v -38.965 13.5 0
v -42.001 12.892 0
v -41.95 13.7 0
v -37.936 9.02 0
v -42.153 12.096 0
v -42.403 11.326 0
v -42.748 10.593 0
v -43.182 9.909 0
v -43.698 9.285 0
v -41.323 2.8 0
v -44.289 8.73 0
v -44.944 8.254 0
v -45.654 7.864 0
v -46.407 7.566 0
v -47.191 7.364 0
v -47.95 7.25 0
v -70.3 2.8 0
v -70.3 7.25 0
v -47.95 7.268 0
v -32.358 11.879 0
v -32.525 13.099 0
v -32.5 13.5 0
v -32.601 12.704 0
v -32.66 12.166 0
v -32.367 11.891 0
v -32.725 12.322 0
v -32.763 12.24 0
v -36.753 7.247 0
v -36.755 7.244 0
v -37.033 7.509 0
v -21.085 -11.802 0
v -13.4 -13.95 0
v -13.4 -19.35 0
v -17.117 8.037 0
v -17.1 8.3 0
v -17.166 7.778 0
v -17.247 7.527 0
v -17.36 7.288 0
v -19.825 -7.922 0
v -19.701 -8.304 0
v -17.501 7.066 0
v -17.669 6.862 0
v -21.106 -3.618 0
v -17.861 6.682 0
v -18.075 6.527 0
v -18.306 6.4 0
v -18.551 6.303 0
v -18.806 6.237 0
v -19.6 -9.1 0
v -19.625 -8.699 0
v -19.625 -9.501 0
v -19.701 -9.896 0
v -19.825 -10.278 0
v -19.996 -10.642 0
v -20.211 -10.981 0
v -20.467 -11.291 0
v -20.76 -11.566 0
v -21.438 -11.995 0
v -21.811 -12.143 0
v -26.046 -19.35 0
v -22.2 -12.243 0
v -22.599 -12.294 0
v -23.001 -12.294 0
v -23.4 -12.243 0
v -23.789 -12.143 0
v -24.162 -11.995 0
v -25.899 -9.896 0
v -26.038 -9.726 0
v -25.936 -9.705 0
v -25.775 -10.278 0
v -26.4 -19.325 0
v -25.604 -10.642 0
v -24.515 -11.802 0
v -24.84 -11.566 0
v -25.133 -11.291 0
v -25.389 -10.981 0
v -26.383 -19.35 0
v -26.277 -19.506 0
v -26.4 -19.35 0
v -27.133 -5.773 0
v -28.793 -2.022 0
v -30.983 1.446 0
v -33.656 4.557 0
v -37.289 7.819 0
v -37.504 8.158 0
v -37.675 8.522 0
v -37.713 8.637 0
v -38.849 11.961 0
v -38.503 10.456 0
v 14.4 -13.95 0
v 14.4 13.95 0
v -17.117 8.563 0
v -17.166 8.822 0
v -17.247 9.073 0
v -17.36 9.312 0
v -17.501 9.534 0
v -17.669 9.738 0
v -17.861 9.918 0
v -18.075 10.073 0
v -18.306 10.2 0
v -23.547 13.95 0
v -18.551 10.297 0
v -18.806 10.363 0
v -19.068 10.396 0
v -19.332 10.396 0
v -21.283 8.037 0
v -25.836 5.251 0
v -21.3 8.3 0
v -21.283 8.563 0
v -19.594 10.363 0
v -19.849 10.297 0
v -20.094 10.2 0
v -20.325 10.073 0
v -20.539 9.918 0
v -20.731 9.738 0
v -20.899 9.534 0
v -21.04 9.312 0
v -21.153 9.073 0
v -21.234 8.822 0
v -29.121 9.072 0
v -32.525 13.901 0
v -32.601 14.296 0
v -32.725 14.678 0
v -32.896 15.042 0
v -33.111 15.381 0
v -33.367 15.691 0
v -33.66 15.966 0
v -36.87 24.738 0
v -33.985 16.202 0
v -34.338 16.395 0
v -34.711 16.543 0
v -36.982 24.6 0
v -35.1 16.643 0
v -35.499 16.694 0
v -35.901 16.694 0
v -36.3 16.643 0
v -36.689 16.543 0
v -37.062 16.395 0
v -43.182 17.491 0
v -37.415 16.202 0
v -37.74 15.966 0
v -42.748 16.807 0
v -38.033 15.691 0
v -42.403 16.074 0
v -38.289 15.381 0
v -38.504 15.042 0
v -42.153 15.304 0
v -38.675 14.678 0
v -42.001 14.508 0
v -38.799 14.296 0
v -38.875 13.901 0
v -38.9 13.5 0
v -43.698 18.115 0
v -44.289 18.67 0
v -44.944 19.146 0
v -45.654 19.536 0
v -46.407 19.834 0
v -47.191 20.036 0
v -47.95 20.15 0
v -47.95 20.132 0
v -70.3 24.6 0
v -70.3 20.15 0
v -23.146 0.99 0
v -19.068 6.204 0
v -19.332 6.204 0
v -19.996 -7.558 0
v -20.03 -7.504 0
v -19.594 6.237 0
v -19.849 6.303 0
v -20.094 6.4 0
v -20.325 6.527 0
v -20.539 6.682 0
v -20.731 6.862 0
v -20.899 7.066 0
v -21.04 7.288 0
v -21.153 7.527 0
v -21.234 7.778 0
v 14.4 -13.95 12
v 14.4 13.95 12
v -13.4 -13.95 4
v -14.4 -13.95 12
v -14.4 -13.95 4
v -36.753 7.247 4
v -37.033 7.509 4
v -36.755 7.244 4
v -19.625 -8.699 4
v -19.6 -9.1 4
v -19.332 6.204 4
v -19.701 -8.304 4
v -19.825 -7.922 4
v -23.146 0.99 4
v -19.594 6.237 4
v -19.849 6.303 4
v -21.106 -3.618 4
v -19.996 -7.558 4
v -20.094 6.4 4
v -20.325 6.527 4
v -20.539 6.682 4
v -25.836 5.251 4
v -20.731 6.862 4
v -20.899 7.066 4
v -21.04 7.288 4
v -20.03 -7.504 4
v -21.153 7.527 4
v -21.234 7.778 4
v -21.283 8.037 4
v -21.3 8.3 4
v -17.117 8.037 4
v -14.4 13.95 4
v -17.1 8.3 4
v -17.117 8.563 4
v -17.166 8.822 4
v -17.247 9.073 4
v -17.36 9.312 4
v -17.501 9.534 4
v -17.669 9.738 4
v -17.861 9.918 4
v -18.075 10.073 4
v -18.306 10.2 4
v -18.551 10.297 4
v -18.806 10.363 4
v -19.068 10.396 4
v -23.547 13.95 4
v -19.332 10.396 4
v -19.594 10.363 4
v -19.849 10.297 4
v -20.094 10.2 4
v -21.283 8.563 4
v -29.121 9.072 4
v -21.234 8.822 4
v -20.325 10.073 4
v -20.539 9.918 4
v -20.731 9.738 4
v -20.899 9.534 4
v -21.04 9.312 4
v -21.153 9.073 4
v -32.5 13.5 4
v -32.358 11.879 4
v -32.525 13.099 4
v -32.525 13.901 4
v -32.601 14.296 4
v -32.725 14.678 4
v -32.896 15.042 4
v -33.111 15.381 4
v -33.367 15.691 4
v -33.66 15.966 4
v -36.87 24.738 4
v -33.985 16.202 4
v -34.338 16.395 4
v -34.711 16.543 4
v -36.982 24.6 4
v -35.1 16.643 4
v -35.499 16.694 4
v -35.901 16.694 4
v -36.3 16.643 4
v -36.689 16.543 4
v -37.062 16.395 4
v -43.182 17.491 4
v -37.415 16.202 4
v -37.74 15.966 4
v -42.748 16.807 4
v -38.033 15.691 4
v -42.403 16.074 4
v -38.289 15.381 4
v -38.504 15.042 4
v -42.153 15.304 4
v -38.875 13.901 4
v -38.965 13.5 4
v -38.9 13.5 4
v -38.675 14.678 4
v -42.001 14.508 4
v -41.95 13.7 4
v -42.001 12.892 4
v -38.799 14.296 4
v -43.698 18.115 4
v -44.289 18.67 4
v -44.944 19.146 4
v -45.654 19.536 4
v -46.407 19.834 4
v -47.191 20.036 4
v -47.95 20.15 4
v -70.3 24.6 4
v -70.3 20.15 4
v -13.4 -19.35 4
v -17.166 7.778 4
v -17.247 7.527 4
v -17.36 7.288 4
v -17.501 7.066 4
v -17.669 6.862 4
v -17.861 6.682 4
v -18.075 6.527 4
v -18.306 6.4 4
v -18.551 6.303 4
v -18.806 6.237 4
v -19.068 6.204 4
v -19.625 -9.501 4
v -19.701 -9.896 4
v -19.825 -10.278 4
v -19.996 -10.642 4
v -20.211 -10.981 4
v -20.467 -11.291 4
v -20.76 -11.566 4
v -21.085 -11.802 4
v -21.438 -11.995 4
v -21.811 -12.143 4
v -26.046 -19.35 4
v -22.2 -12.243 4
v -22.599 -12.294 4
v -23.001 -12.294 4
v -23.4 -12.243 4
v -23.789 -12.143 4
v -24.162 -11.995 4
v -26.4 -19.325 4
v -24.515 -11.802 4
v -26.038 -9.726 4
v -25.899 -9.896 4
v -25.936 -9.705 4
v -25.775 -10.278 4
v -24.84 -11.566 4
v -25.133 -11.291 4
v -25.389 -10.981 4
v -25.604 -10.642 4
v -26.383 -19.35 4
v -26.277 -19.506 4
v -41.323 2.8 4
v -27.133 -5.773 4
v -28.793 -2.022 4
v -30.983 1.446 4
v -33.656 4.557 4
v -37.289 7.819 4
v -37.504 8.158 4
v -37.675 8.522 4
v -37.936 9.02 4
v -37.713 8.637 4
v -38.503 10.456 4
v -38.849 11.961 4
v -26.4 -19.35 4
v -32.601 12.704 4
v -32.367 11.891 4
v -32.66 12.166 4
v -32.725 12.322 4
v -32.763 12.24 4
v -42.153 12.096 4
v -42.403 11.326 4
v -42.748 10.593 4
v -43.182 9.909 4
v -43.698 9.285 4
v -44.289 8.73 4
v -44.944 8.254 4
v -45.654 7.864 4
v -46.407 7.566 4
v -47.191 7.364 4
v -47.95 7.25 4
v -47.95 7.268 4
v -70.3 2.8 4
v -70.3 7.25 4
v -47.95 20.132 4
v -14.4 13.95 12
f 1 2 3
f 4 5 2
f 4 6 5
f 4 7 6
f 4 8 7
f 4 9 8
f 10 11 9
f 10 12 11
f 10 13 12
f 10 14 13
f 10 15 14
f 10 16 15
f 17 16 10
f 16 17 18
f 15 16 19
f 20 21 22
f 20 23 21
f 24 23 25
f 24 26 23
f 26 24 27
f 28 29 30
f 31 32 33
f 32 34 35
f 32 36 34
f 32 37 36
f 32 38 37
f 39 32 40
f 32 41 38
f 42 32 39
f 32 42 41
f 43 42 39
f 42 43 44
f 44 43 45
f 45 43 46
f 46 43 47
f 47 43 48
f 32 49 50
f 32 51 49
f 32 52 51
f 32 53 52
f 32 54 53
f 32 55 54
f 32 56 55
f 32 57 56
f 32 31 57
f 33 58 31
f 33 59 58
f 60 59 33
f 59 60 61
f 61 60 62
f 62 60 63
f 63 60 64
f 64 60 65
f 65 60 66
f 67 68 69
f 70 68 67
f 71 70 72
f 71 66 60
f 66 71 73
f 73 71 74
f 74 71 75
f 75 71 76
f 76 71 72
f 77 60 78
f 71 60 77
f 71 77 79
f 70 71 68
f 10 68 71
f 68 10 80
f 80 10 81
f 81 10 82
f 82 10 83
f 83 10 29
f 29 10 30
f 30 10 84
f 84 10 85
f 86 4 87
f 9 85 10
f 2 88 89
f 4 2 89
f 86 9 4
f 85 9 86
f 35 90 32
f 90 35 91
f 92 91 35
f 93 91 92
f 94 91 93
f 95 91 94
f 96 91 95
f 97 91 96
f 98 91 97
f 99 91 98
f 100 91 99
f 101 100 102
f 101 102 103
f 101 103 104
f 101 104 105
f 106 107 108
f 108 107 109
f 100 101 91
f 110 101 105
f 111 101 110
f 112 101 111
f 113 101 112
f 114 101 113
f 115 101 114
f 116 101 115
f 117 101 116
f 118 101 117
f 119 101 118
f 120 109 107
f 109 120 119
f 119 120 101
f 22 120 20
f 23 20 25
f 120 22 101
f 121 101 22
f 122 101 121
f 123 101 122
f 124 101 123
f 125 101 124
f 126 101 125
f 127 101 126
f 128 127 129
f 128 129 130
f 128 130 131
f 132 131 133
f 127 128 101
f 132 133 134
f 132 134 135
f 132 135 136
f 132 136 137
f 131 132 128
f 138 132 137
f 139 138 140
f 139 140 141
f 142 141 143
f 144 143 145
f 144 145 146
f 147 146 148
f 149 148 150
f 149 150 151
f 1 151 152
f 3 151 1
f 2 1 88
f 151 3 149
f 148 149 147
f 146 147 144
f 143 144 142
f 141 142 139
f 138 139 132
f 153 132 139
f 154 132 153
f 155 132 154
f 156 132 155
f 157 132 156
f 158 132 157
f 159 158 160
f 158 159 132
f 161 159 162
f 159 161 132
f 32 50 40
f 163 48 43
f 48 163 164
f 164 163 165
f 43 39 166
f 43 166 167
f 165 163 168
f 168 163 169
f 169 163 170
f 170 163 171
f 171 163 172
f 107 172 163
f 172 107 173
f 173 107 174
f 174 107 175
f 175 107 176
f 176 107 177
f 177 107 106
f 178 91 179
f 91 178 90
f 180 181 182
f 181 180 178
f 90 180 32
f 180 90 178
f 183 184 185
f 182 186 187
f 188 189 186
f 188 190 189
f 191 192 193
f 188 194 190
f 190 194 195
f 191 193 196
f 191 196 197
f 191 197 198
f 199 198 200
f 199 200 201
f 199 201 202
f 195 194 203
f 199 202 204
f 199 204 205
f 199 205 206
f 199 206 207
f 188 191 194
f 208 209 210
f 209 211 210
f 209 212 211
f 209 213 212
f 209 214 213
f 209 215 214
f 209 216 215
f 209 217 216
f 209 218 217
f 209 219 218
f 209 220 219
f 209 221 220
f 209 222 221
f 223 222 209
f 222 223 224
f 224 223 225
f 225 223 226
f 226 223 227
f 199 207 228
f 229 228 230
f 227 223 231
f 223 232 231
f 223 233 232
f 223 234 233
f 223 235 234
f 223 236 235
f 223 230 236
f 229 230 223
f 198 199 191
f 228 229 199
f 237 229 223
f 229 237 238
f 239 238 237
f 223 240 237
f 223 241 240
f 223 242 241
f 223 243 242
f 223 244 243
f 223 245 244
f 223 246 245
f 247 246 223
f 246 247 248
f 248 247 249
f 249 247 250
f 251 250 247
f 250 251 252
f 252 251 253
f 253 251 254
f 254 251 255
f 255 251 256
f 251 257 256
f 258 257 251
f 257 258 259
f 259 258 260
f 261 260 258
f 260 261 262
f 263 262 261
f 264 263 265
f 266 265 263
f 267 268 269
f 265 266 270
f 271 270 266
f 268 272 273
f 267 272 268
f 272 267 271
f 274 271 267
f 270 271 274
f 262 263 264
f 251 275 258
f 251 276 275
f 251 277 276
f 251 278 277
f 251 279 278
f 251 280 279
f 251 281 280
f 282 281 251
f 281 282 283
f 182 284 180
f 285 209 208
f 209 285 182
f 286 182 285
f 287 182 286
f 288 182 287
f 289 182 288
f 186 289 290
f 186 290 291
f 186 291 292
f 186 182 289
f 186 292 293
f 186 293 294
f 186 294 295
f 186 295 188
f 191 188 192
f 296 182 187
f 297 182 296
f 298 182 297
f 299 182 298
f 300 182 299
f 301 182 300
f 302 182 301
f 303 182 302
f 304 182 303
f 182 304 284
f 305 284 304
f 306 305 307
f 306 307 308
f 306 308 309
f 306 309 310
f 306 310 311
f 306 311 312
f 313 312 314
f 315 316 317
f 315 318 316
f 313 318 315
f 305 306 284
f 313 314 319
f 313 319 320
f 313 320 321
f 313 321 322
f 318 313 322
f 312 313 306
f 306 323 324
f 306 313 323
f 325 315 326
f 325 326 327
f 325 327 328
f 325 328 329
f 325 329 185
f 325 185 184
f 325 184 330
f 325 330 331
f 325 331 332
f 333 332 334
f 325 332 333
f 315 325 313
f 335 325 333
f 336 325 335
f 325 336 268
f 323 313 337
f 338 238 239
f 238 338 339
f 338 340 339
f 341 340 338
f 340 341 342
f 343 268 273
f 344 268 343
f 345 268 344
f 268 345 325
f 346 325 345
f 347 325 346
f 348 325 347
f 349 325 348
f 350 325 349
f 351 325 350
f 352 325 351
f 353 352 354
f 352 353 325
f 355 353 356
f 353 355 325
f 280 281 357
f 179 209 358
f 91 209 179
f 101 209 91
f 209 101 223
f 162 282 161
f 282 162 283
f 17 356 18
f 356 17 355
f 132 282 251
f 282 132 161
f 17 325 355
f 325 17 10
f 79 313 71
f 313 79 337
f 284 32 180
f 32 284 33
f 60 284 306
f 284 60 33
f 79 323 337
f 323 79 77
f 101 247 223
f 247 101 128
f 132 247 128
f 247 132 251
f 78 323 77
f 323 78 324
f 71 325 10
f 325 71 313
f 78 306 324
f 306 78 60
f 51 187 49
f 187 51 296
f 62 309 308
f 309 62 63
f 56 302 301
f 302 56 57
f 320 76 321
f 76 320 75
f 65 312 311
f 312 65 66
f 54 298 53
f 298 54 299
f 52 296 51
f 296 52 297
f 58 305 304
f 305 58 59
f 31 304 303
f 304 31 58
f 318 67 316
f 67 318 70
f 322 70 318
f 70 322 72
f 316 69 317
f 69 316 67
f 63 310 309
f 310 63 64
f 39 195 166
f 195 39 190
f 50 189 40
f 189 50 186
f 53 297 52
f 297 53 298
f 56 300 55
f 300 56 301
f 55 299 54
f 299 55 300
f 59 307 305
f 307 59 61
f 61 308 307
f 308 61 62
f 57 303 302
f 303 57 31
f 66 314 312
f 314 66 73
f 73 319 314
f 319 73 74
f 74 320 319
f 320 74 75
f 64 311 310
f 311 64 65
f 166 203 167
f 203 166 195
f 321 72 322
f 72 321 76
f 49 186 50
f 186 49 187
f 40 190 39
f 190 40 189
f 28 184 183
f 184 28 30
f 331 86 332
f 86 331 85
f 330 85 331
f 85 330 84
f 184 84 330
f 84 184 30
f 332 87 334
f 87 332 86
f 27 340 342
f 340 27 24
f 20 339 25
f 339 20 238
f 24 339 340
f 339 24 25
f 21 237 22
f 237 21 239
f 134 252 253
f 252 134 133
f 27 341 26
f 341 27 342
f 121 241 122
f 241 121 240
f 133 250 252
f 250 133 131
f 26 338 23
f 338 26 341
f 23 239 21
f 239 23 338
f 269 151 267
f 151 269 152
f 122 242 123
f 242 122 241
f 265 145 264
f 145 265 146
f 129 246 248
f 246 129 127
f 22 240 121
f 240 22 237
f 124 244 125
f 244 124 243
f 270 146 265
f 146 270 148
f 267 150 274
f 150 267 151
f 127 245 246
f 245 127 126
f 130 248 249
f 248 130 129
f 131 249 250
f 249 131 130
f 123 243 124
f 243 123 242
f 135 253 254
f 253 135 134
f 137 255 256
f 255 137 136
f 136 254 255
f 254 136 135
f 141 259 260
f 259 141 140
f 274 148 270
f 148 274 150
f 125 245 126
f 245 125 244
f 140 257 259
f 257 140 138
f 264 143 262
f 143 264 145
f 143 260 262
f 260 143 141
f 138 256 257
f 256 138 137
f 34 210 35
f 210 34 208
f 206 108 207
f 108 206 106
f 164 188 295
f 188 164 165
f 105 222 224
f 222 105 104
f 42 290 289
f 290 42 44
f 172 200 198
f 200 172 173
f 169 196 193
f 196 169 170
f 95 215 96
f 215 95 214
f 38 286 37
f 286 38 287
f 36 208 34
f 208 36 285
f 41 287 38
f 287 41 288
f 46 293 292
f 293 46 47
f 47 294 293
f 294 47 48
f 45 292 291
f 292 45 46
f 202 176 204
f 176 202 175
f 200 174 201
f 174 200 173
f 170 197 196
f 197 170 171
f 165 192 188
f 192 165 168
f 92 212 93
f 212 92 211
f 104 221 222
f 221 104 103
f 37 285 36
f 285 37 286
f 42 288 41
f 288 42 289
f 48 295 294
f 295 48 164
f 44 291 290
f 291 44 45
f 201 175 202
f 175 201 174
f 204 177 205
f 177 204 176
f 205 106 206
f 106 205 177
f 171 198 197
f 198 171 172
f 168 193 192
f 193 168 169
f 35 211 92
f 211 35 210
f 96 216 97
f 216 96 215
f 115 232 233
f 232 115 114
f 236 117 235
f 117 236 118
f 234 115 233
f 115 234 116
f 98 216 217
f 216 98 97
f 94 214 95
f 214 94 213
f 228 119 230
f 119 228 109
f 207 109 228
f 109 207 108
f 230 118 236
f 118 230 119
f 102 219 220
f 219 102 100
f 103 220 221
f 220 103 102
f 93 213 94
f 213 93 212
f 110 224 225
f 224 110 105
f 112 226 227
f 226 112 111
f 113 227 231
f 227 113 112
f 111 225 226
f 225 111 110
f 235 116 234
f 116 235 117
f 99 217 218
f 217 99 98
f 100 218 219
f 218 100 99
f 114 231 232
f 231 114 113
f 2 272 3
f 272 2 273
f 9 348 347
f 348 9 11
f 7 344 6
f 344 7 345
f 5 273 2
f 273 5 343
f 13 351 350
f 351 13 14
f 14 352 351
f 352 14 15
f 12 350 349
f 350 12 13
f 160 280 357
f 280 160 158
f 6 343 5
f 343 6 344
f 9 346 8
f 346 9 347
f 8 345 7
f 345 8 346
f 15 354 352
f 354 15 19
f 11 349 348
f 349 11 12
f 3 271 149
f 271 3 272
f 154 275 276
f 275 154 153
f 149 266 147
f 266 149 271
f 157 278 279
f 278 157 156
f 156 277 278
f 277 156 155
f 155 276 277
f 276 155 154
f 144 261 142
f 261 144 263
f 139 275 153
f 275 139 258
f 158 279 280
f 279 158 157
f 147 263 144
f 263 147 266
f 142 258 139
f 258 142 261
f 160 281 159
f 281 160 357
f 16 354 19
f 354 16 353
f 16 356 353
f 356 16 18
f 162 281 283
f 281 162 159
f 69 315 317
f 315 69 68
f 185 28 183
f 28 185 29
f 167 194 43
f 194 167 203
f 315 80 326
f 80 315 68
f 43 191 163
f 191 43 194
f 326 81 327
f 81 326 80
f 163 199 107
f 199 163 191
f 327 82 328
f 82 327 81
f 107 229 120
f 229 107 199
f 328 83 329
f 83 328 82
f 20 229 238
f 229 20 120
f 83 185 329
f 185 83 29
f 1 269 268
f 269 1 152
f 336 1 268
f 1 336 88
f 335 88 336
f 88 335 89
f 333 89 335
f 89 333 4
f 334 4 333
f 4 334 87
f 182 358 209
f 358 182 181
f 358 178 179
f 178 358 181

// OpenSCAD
$fn=50;
ts=4;
ts2=12;
ts1=ts+4;

rigel=[[28.8,27.9],[194.2,163]];
otv_start=[[6.4,6.4],[171.4,172.1]];
otv_line=[[6.4,6.4],[171.3,172.1],[140.7,178.2],[318.0, 360]];
otv_line_stop=[[6.4,6.4],[159.5,153.3]];
otv_stop=[[6.4,6.4],[158.5,149.5]];
otv_flex=[[3.5,3.5],[158.4,154.2],[165.5,149.5],[0,34.5]];
otv_otv=[[4.2,4.2],[175,154.7]];
otv_hvost_kr=[[12.9,12.9],[145.8,149.3]];
otv_hvost=[[22.5,12.9],[135,149.3]];
hvost=[[31.4,21.8],[139.6,149.3]];
zub=[[13,33.3],[174.3,165.7]];
skos1=[[12.5,26],[161.5,151.3],[161.5,151.3],[360,309]];
skos2=[[12.5,29.7],[164.8,166.7],[164.8,166.7],[360,326]];

rotate([180,0,0])translate([-rigel.y.x,-rigel.y.y,0])all();


module all(){
    translate([rigel.y.x,rigel.y.y,-ts2/2])cube([rigel.x.x,rigel.x.y,ts2],true);
    translate([0,0,-ts])difference(){
        out();
        translate([0,0,-1])in ();
    }
    
}

module out(){
    
    translate([rigel.y.x,rigel.y.y,ts/2])cube([rigel.x.x,rigel.x.y,ts],true);
    translate([hvost.y.x+1,hvost.y.y,ts/2])cube([hvost.x.x+2,hvost.x.y,ts],true);
    translate([zub.y.x,zub.y.y,ts/2])cube([zub.x.x,zub.x.y,ts],true);
    translate([skos1.y.x+2,skos1.y.y,ts/2])rotate([0,0,skos1[3].y])cube([skos1.x.x,skos1.x.y,ts],true);
    translate([skos2.y.x,skos2.y.y,ts/2])rotate([0,0,skos2[3].y])cube([skos2.x.x,skos2.x.y,ts],true);
}
//translate([-rigel.y.x,-rigel.y.y,0])in();
module in (){
translate([otv_start.y.x,otv_start.y.y,0])cylinder(ts1,otv_start.x.x/2,otv_start.x.y/2);
translate([otv_line_stop.y.x,otv_line_stop.y.y,0])cylinder(ts1,otv_line_stop.x.x/2,otv_line_stop.x.y/2);    
translate([otv_stop.y.x,otv_stop.y.y,0])cylinder(ts1,otv_stop.x.x/2,otv_stop.x.y/2);
translate([otv_otv.y.x,otv_otv.y.y,0])cylinder(ts1,otv_otv.x.x/2,otv_otv.x.y/2);
translate([otv_hvost_kr.y.x,otv_hvost_kr.y.y,0])cylinder(ts1,otv_hvost_kr.x.x/2,otv_hvost_kr.x.y/2);
translate([otv_hvost.y.x,otv_hvost.y.y,ts1/2])cube([otv_hvost.x.x,otv_hvost.x.y,ts1],true);

function dd_x(point,centre)=centre.x-point.x;
function dd_y(point,centre)=centre.y-point.y;
function rad (x,y)= sqrt(x*x+y*y);


dx=dd_x(otv_line.y,otv_line.z);
dy=dd_y(otv_line.y,otv_line.z);
radius_line= rad (dx,dy);
translate([otv_line.z.x,otv_line.z.y,0])rotate([0,0,atan(dy/dx)])rotate_extrude (angle=otv_line[3].x-otv_line[3].y)translate([radius_line-otv_line.x.x/2,0,0])square(size = [otv_line.x.x, ts1], center = false);

dx1=dd_x(otv_flex.y,otv_flex.z);
dy1=dd_y(otv_flex.y,otv_flex.z);
radius_flex= rad (dx1,dy1);
translate([otv_flex.z.x,otv_flex.z.y,0]) rotate([0,0,180])rotate_extrude (angle=-(otv_flex[3].y-otv_flex[3].x))translate([radius_flex-otv_flex.x.x/2,0,0])square(size = [otv_flex.x.x,ts1], center = false);
    
}   
    
